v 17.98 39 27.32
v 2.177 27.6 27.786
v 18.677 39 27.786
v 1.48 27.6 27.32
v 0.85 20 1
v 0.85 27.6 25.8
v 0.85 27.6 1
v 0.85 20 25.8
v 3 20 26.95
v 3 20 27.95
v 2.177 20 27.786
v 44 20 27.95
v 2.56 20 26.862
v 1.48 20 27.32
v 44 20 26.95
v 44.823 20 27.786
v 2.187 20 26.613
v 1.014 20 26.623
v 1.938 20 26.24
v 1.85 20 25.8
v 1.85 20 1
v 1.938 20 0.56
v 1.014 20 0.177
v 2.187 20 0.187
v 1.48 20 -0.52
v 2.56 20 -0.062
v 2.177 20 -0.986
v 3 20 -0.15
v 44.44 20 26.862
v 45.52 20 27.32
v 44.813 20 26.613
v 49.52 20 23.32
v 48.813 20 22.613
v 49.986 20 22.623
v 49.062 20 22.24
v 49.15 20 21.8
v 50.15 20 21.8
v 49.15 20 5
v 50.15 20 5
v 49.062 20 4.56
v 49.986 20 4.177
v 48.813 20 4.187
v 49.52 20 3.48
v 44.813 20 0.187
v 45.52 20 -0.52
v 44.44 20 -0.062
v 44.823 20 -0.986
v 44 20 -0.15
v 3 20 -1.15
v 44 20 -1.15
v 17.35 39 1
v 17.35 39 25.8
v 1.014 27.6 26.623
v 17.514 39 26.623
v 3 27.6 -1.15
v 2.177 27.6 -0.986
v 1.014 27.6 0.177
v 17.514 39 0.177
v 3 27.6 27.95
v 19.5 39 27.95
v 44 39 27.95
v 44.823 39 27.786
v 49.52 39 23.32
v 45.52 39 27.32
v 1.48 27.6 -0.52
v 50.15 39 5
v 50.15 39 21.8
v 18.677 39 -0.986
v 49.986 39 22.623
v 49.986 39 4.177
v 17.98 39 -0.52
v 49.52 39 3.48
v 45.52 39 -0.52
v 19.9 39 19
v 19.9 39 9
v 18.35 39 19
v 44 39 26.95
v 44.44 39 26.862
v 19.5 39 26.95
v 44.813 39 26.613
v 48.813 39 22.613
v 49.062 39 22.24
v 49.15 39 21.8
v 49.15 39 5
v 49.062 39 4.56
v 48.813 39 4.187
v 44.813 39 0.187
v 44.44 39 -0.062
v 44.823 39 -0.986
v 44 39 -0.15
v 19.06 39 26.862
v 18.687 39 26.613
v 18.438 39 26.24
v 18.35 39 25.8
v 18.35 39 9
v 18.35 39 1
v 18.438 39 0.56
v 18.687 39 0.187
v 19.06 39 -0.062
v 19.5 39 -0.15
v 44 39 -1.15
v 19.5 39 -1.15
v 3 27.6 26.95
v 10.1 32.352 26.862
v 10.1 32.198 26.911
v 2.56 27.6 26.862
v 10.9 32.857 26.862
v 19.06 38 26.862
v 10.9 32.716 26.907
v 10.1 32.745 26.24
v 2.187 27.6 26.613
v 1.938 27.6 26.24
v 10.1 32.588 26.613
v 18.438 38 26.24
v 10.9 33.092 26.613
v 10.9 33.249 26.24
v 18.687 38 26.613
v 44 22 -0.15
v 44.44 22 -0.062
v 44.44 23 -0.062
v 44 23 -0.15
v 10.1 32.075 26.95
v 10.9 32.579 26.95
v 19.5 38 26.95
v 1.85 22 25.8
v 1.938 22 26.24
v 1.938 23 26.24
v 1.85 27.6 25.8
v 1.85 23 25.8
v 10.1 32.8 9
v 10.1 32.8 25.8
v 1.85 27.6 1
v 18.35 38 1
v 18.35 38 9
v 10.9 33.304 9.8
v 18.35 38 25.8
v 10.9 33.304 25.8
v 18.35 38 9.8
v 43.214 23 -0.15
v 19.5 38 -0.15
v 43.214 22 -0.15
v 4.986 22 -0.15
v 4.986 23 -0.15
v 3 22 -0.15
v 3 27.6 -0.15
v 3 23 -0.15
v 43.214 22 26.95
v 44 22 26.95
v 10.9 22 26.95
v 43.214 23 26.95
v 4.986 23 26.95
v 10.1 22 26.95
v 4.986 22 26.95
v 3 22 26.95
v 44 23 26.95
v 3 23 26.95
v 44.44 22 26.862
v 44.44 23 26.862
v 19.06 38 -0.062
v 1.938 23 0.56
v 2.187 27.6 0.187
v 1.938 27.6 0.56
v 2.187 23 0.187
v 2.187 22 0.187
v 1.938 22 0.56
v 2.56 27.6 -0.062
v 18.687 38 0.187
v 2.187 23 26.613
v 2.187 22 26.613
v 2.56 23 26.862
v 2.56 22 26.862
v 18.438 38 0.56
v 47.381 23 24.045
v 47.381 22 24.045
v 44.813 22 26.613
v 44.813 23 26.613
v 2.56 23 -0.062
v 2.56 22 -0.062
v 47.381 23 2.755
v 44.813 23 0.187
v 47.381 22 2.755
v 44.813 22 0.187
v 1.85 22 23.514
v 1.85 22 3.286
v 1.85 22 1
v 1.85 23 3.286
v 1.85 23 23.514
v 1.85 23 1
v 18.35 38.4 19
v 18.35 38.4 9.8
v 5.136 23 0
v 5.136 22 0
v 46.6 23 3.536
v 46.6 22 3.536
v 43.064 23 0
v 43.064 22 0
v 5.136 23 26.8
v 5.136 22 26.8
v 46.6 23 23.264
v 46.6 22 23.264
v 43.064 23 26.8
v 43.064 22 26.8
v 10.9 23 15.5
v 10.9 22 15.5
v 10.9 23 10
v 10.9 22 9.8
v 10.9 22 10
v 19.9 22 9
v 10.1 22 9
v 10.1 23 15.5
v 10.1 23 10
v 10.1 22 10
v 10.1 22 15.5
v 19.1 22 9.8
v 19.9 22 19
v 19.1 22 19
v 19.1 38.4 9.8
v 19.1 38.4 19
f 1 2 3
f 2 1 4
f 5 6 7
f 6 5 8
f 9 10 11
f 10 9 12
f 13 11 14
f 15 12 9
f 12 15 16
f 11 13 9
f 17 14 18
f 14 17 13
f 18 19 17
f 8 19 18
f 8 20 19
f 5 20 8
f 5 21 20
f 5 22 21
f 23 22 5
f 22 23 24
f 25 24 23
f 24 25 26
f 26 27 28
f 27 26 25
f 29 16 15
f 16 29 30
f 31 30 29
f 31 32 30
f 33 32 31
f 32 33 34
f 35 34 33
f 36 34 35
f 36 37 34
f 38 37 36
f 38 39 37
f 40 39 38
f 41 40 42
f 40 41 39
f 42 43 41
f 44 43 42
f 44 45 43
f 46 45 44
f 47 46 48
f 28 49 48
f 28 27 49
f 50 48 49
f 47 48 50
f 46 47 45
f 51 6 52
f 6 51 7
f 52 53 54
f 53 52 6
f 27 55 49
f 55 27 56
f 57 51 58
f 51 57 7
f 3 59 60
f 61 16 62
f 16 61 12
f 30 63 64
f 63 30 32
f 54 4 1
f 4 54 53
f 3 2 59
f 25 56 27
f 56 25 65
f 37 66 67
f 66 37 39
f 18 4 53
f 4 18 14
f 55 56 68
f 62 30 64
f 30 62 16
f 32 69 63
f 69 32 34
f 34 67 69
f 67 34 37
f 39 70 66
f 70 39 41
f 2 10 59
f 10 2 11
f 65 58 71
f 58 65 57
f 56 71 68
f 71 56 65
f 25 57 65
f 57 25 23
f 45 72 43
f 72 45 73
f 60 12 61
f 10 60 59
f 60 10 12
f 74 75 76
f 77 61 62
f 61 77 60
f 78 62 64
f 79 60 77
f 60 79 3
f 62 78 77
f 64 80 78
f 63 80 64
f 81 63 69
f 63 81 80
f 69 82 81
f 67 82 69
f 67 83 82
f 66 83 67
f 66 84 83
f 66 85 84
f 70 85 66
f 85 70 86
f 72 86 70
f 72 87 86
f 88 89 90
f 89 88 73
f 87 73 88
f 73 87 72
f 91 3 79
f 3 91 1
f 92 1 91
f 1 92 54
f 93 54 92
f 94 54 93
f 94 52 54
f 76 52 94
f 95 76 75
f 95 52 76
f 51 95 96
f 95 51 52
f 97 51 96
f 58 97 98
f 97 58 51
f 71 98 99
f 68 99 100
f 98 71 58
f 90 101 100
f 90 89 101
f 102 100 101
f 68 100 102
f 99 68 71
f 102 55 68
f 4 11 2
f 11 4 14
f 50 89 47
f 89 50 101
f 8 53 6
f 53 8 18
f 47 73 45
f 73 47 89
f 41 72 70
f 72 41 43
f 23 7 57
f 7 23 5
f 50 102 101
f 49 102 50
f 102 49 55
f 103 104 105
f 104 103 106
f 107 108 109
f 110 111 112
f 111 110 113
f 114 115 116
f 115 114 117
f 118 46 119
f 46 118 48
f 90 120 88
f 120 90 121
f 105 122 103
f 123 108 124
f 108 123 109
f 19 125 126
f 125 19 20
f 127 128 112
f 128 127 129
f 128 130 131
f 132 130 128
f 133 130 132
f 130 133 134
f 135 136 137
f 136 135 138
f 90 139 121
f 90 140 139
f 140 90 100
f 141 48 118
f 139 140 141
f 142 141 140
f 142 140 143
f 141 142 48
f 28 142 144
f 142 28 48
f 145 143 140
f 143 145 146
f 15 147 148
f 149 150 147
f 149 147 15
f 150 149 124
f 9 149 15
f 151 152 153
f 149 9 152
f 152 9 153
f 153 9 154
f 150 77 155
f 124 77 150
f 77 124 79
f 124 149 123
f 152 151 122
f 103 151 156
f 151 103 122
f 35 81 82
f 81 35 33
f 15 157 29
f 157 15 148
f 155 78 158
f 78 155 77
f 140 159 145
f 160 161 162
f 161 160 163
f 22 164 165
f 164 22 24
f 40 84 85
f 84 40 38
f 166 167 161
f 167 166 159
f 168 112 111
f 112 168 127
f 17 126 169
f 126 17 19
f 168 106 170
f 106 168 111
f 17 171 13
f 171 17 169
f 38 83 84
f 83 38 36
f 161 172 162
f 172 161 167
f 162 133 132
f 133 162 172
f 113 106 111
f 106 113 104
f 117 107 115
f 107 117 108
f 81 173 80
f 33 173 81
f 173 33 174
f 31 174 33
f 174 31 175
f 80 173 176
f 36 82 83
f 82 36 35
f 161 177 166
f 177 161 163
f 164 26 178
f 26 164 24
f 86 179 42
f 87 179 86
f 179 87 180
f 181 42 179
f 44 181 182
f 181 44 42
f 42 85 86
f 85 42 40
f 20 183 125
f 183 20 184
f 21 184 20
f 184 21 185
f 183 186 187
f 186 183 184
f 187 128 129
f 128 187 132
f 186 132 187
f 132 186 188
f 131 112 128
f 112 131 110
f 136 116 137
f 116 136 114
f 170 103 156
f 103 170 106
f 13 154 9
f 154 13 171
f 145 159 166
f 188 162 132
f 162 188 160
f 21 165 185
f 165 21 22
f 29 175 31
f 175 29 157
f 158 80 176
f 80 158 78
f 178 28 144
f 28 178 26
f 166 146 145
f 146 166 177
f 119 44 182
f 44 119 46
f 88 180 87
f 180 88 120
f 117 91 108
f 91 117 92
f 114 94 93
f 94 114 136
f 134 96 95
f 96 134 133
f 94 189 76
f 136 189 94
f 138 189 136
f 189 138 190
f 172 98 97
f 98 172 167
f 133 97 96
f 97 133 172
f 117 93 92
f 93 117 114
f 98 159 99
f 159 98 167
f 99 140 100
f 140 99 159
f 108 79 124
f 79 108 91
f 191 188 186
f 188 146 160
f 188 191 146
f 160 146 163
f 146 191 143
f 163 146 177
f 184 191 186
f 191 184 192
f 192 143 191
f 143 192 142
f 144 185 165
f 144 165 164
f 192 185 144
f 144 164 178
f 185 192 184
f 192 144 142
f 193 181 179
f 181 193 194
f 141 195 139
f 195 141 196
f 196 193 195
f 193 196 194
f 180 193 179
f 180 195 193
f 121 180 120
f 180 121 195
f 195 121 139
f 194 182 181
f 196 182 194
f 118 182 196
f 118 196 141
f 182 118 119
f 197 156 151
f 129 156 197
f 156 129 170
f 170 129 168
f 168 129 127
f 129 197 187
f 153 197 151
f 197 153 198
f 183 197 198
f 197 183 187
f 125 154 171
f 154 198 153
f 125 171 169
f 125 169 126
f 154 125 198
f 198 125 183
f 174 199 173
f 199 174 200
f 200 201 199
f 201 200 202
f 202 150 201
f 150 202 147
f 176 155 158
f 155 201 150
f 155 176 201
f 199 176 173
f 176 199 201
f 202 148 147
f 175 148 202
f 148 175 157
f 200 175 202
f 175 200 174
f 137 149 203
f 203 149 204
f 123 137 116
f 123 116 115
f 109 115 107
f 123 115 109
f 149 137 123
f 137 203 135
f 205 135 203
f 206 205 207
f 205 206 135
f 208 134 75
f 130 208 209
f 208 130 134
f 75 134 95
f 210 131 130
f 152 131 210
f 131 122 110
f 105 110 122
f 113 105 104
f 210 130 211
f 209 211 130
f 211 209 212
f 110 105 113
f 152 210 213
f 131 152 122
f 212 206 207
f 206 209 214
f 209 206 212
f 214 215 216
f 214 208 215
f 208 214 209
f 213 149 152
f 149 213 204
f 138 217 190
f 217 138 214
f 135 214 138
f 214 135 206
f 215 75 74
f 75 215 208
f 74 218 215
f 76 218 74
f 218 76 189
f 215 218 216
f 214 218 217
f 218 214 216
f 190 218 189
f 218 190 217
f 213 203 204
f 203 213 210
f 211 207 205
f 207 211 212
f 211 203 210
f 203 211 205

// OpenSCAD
// file: xt.scad
e=.001;
$fn=16;

xt60_w=15.7;
xt60_h=8;
xt60f_d = 15.7;
xt60f_base_d = 8;
xt60_combined_d=24.1;
xt60_pitch=7;
xt60_chamfer=2.5;
xt60f_pin_d=5.7;
xt60m_pin_d=4.7;
xt60_pin_w=4.5;
xt60_hole_w=4.5;
xt60_corner=.5;

module xt_pins(width, height, pitch)
{
	for (p=[-pitch/2, pitch/2])
	translate([p,0,0])
	cylinder(h=height, r=width/2);
}

module xt_base(w, h, d, chamfer, corner, margin=0, e=0)
{
	w = w-2*corner;
	h = h-2*corner;
	r = corner+margin;
	translate([0,0,-e])
    linear_extrude(d+2*e)
	hull()
    for (p=[ [w/2,-h/2],
	         [-w/2+chamfer, -h/2],
	         [-w/2, -h/2+chamfer],
	         [-w/2, h/2-chamfer],
	         [-w/2+chamfer, h/2],
	         [w/2, h/2]
	])
	translate(p)
	circle(r);
}

module xt60_combined_shell_cutout(margin=0,f_margin=-1,m_margin=-1, e=0)
{
	b=1; 
	xt_base(xt60_w, xt60_h, xt60_combined_d, xt60_chamfer, xt60_corner, margin, e);
	if (f_margin > margin)
	hull()
	{
		xt_base(xt60_w, xt60_h, xt60f_base_d, xt60_chamfer, xt60_corner, f_margin, e);
		translate([0,0,xt60f_base_d])
		xt_base(xt60_w, xt60_h, f_margin-margin, xt60_chamfer, xt60_corner, margin, e);
	}
	if (m_margin > margin)
	hull()
	{
		translate([0,0,xt60f_base_d-(m_margin-margin)])
		xt_base(xt60_w, xt60_h, m_margin-margin, xt60_chamfer, xt60_corner, margin, e);
		translate([0,0,xt60f_base_d])
		xt_base(xt60_w, xt60_h, xt60_combined_d-xt60f_base_d, xt60_chamfer, xt60_corner, m_margin, e);
	}
}


module xt60_combined_cutout(margin=0,f_margin=-1,m_margin=-1, e=0)
{
	b=1; 
	xt60_combined_shell_cutout(margin,f_margin,m_margin, e);

	translate([0, 0, -xt60f_pin_d-margin])
	xt_pins(xt60_pin_w+margin*2, xt60f_pin_d+b+margin, xt60_pitch);

	translate([0, 0, xt60_combined_d-b])
	xt_pins(xt60_pin_w+margin*2, xt60m_pin_d+b+margin, xt60_pitch);
}

module xt60f_cutout(margin=0,f_margin=-1,m_margin=-1,e=0)
{
	translate([0,0,-xt60f_d])
	xt60_combined_cutout(margin,f_margin,m_margin,e);
}

module xt60f_shell_cutout(margin=0,f_margin=-1,m_margin=-1,e=0)
{
	translate([0,0,-xt60f_d])
	xt60_combined_shell_cutout(margin,f_margin,m_margin,e);
}

module xt60f()
{
	b=1;
	translate([0,0,-xt60f_d])
	{
		xt_base(xt60_w, xt60_h, xt60f_base_d, xt60_chamfer, xt60_corner, 0, e);

		translate([0,0,b])
		difference()
		{
			xt_base(xt60_w-2*xt60_corner, xt60_h-2*xt60_corner, xt60f_d-b, xt60_chamfer, xt60_corner, 0, e);
			xt_pins(xt60_hole_w, xt60f_d, xt60_pitch);

		}

		difference()
		{
			translate([0, 0, -xt60f_pin_d])
			xt_pins(xt60_pin_w, xt60f_pin_d+b, xt60_pitch);

			translate([0, 0, -xt60f_pin_d-b])
			xt_pins(xt60_pin_w*.8, xt60f_pin_d+b, xt60_pitch);
		}
	}
}

xt60f();
%xt60f_cutout(margin=.4,m_margin=1,e=e);
// file: powerplug.scad
e=0.001;

border_w=51;
border_h=31.2;
border_d=3.5;

w=47;
h=26.8;
d=22;
chamf=4;


flap_a_w=10;
flap_a_x=4;

flap_b_w=7;
flap_b_x=33;

flap_h=1;
flap_latch=.8;

corner=1;

module plug(margin=0, extra_depth=0)
{
	$fn=16;

	d = d+extra_depth;
	border_w = border_w-2*corner;
	border_h = border_h-2*corner;
	w = w-2*corner;
	h = h-2*corner;
	r = corner+margin;

	color([.3,.3,.3])
	translate([corner,0,corner])
	rotate([90,0,0])
	{
		translate([0,(h-border_h)/2,0])
		linear_extrude(border_d+margin)
		hull()
		for(p=[ [0, 0],
		        [0, border_h],
		        [border_w, border_h],
		        [border_w, 0]
		])
		translate(p)
		circle(r);

		translate([(border_w-w)/2,0,-d])
		linear_extrude(d+e)
		hull()
		for (p=[ [0, 0],
		         [0, h],
		         [w-chamf, h],
		         [w, h-chamf],
		         [w, chamf],
		         [w- chamf, 0],
		])
		translate(p)
		circle(r);
	}
}

module plug_latch(margin=0)
{
	rotate([90,0,0])
	rotate([0,90,0])
	linear_extrude(9)
	{
		polygon([ [0, -1], [0, 1+margin], [9, margin]]);
	}
}

module plug_latches(margin=0)
{
	for (x=[9.5,32])
	for (y_flip=[-1, 1])
	translate([(border_w-w)/2+x,1.8, h/2])
	scale([1,1,y_flip])
	translate([0,0,h/2])
	plug_latch(margin);
}

plug();

plug_latches()

%plug(margin=.3);
// file: mw_lrs.scad
e=.001;
$fn=16;

mw_lrs_w=115;
mw_lrs_h=30;
mw_lrs_d=215;


mw_lrs_holes_pitch_d  = 150;
mw_lrs_holes_pitch_w  = 50;
mw_lrs_holes_height_h = 12.5;

mw_lrs_gap_h = 23;
mw_lrs_gap_d = 18.5;

mw_lrs_case_thickness = 1.6;

m4_thread = 4;

mw_lrs_screw_terminal_x=8.5;
mw_lrs_screw_terminal_w=88;
mw_lrs_screw_terminal_d=15;
mw_lrs_screw_terminal_h=15;
mw_lrs_screw_terminal_pitch = 9.5;
mw_lrs_screw_terminal_gap_w = 8;
mw_lrs_screw_terminal_gap_d = 14;
mw_lrs_screw_terminal_gap_z = 7;
mw_lrs_screw_terminal_gap_h = 6;

module mw_lrs_side_holes()
{
	translate( [0, 0, mw_lrs_holes_height_h] )
	for( r = [ 0, 180 ] )
	rotate( [0, r, 0] )
	for( y = [ (mw_lrs_d-mw_lrs_holes_pitch_d)/2, (mw_lrs_d+mw_lrs_holes_pitch_d)/2 ] )
	translate( [-mw_lrs_w/2, y, 0] )
	rotate( [0, 90, 0] )
	children();
}

module mw_lrs_bottom_holes()
{
	for( x = [ -mw_lrs_holes_pitch_w/2, mw_lrs_holes_pitch_w/2 ] )
	for( y = [ (mw_lrs_d-mw_lrs_holes_pitch_d)/2, (mw_lrs_d+mw_lrs_holes_pitch_d)/2 ] )
	translate( [x, y, 0] )
	children();
}

module mw_lrs_holes()
{
	mw_lrs_side_holes() children();
	mw_lrs_bottom_holes() children();
}

module mw_lrs_screw_terminal()
{
	colors = [
		"red", "red", "red",
		"black", "black", "black",
		"green", "blue", "brown",
	];
	b=1;
	translate([mw_lrs_screw_terminal_x, mw_lrs_case_thickness, mw_lrs_h-mw_lrs_gap_h-e])
	{
		difference()
		{
			translate([-mw_lrs_screw_terminal_w/2, 0, 0])
			cube([mw_lrs_screw_terminal_w, mw_lrs_screw_terminal_d, mw_lrs_screw_terminal_h+e]);
			for (i=[0:8])
			translate([(i-4)*9.5-mw_lrs_screw_terminal_gap_w/2, -b, mw_lrs_screw_terminal_gap_z])
			cube([mw_lrs_screw_terminal_gap_w, mw_lrs_screw_terminal_gap_d+b, mw_lrs_screw_terminal_gap_h]);
		}

		for (i=[0:8])
		translate([(i-4)*9.5-mw_lrs_screw_terminal_gap_w/2, -0, mw_lrs_screw_terminal_h])
		color(colors[i])
		cube([mw_lrs_screw_terminal_gap_w,mw_lrs_screw_terminal_gap_d,.1]);

	}
}

module mw_lrs_vents()
{
	b=1;
	hole=4;
	for (y = [36, 44, 52])
	for (i = [-1, 1])
	hull()
	{
		translate([i*(19/2+hole/2), y, mw_lrs_h-mw_lrs_case_thickness-b])
			cylinder(mw_lrs_case_thickness+2*b, r=hole/2);

		translate([i*(19/2+hole/2+33), y, mw_lrs_h-mw_lrs_case_thickness-b])
			cylinder(mw_lrs_case_thickness+2*b, r=hole/2);
	}

	translate([-mw_lrs_w/2+36.7, mw_lrs_d-47.45,mw_lrs_h-mw_lrs_case_thickness-b])
		cylinder(mw_lrs_case_thickness+2*b, r=50/2);
}

module mw_lrs_vents_keepout(h, margin=0)
{
	b=1;
	hole=4;
	hull()
	for (y = [36, 44, 52])
	for (i = [-1, 1])
	{
		translate([i*(19/2+hole/2), y, mw_lrs_h-b])
			cylinder(h+b, r=hole/2+margin);

		translate([i*(19/2+hole/2+33), y, mw_lrs_h-b])
			cylinder(h+b, r=hole/2+margin);
	}

	translate([-mw_lrs_w/2+36.7, mw_lrs_d-47.45,mw_lrs_h-b])
		cylinder(h+b, r=50/2);
}

module mw_lrs()
{
	b=1; 

	union()
	{
		color([.75,.75,.75])
		difference()
		{

			translate([-mw_lrs_w/2,0,0])
			cube([mw_lrs_w, mw_lrs_d, mw_lrs_h]);

			union()
			{
				translate([-mw_lrs_w/2+mw_lrs_case_thickness, -b, mw_lrs_h-mw_lrs_gap_h] )
				cube( [ mw_lrs_w-2*mw_lrs_case_thickness, b+mw_lrs_gap_d, mw_lrs_gap_h+b] );

				translate([-mw_lrs_w/2+mw_lrs_case_thickness, mw_lrs_gap_d-e, mw_lrs_h-mw_lrs_gap_h] )
				cube( [ mw_lrs_w-2*mw_lrs_case_thickness, mw_lrs_d-mw_lrs_gap_d+e-mw_lrs_case_thickness, mw_lrs_gap_h-mw_lrs_case_thickness] );

				mw_lrs_vents();

				mw_lrs_holes()
				{
					translate([0,0,-e])
					cylinder(h=5+e, r=m4_thread/2);
				}
			}
		}
		color([.1, .3, .1])
		translate([-mw_lrs_w/2+mw_lrs_case_thickness, 0, mw_lrs_h-mw_lrs_gap_h-e])
		cube([mw_lrs_w-2*mw_lrs_case_thickness, mw_lrs_d-mw_lrs_case_thickness, e+.1]);
		mw_lrs_screw_terminal();
	}
}

module mw_lrs_keepout(margin=0, e=0)
{
	b=1; 

	w=mw_lrs_w+margin*2;
	d=mw_lrs_d+margin*2;
	h=mw_lrs_h+margin*2;

	translate([-w/2,-margin,-margin])
	cube([w, d, h]);
}

mw_lrs();
%mw_lrs_keepout(margin=.4);

module m4_hole(h)
{
	translate([0,0,-h])
	cylinder(h=h+e, r=m4_thread/2);
}

%mw_lrs_holes()
m4_hole(10);
// file: grid.scad
module bars(width, height, n, pitch, bar_width)
{
	for (i=[0:n-1])
		translate([0, (i-(n-1)/2)*pitch-bar_width/2, 0])
			cube([width, bar_width, height]);
}

module grid(width, depth, height, n_rows, n_cols, pitch=10, x_pitch=-1, y_pitch=-1, bar_width=1, x_bar_width=-1, y_bar_width=-1)
{
	x_pitch = x_pitch > 0 ? x_pitch : pitch;
	y_pitch = y_pitch > 0 ? y_pitch : pitch;
	x_bar_width = x_bar_width > 0 ? x_bar_width : bar_width;
	y_bar_width = y_bar_width > 0 ? y_bar_width : bar_width;

	translate( [0, depth/2, 0] )
		bars( width, height, n_rows, y_pitch, y_bar_width );
	translate( [width/2, 0, 0] )
		rotate([0,0,90])
			bars( depth, height, n_cols, x_pitch, x_bar_width) ;
}

grid(100, 50, 1, 4, 8);
// file: utils.scad
module xz_toward_y()
{
	scale([1, 1, -1])
	rotate([-90,0,0])
	children();
}

module anchor(dim, anchor=[0,0,0])
{
	translate([-(1+anchor.x)*dim.x/2, -(1+anchor.y)*dim.y/2, -(1+anchor.z)*dim.z/2])
	children();
}

module block(dim, anchor=[0,0,0])
{
	anchor(dim, anchor)
	cube(dim);
}

module rounded_block_z(dim, anchor=[0,0,0], r=0)
{
	anchor(dim, anchor)
	linear_extrude(dim.z)
	hull()
	for (p=[ [r,r], [dim.x-r, r], [dim.x-r, dim.y-r], [r, dim.y-r] ] )
	translate(p)
	circle(r);
}

module rounded_block_y(dim, anchor=[0,0,0], r=0)
{
	anchor(dim, anchor)
	xz_toward_y()
	linear_extrude(dim.y)
	hull()
	for (p=[ [r,r], [dim.x-r, r], [dim.x-r, dim.z-r], [r, dim.z-r] ] )
	translate(p)
	circle(r);
}

module chamfer_block_y(dim, anchor=[0,0,0], r=0)
{
	anchor(dim, anchor)
	hull()
	{
		translate([r,0,0])
		cube([dim.x-r*2, dim.y, dim.z]);

		translate([0,0,r])
		cube([dim.x, dim.y, dim.z-r*2]);
	}
}

module chamfer_block_z(dim, anchor=[0,0,0], r=0)
{
	anchor(dim, anchor)
	hull()
	{
		translate([r,0,0])
		cube([dim.x-r*2, dim.y, dim.z]);

		translate([0,r,0])
		cube([dim.x, dim.y-r*2, dim.z]);
	}
}

module chamfer_block(dim, anchor=[0,0,0], r=0)
{
	anchor(dim, anchor)
	hull()
	{
		translate([r,r,0])
		cube([dim.x-r*2, dim.y-r*2, dim.z]);

		translate([r,0,r])
		cube([dim.x-r*2, dim.y, dim.z-r*2]);

		translate([0,r,r])
		cube([dim.x, dim.y-r*2, dim.z-r*2]);
	}
}

module at_grid(c,r,pitch,anchor=[0,0,0])
{
	dim=[(c-1)*pitch,(r-1)*pitch,1];
	a=[anchor[0],anchor[1],-1];
	anchor(dim,a)
	for(x=[0:c-1])
	for(y=[0:r-1])
	translate([x*pitch,y*pitch,0])
	children();
}

module ngon_outer(n,h,r)
{
	cylinder(h,r=r, $fn=n);
}

module ngon_inner(n,h,r)
{
	a=360/n/2;
	r_cyl = r/cos(a);
	rotate([0,0,a])
	cylinder(h,r=r_cyl, $fn=n);
}


module ngon_cone_outer(n,h,r1,r2)
{
	cylinder(h,r1=r1,r2=r2, $fn=n);
}

module ngon_cone_inner(n,h,r1,r2)
{
	a=360/n/2;
	r1_cyl = r1/cos(a);
	r2_cyl = r2/cos(a);
	rotate([0,0,a])
	cylinder(h,r1=r1_cyl,r2=r2_cyl, $fn=n);
}

module preview()
{
	if ($preview)
	children();
}
// main file
use <utils.scad>
use <grid.scad>

use <mw_lrs.scad>
use <powerplug.scad>
use <xt.scad>

$fn=16;
e=.001;


margin=.15;
shield_thickness=1.;
shield_bottom=.6;

border_w=51;
border_h=31.2;
border_d=3.5;

w=47;
h=26.8;
d=22;
chamf=4;


flap_a_w=10;
flap_a_x=4;

flap_b_w=7;
flap_b_x=33;

flap_h=1;
flap_latch=.8;

corner=1;

module plug_keepout(margin=0, depth=39, e=0)
{
	$fn=16;

	d = .1+e;
	border_w = border_w-2*corner;
	border_h = border_h-2*corner;
	w = w-2*corner;
	h = h-2*corner;
	r = corner+margin;
	off = 16.5;

	color([.3,.3,.3])
	translate([corner,depth-.1,corner])
	rotate([90,0,0])
	{
		translate([(border_w-w)/2,0,-d])
		linear_extrude(d+e)
		hull()
		for (p=[ [off, 0],
		         [off, h],
		         [w-chamf, h],
		         [w, h-chamf],
		         [w, chamf],
		         [w- chamf, 0],
		])
		translate(p)
		circle(r);
	}
}

module plug_hull(margin, d, e=0)
{
	hull()
	{
		difference()
		{
		plug(margin=margin, extra_depth=5+shield_bottom);
		translate([-10,-10,-10])
		cube([100, 30, 100]);
		}
		plug_keepout(margin=margin, depth=d, e=0);
	}
	plug_keepout(margin=margin, depth=d, e=e);
	
}

inner_w=.8;

module power_shield()
{
color("red")
	union()
	{
	difference()
	{
		union()
		{
			plug_hull(margin=margin+shield_thickness, d=39);
		}
		union()
		{
		plug_hull(margin=margin, d=38, e=2);
		}
	}

	intersection()
	{
		plug_hull(margin=margin+shield_thickness/2, d=38.5, e=2);
		difference()
		{
			union()
			{
				translate([(border_w-w)/2+8.5-inner_w/2, 22, h/2-4-inner_w/2])
				cube([inner_w, 20, 20]);

				translate([(border_w-w)/2+8.5, 22, h/2-4-inner_w/2])
				cube([9., 17, inner_w]);

				translate([(border_w-w)/2+17.5-inner_w/2, 22, h/2-4-inner_w/2])
				cube([inner_w, 17, 10]);

				translate([(border_w-w)/2+15-inner_w/2, 38.4, h/2-4-inner_w/2])
				cube([2.5, shield_bottom, 10]);

				for (y=[0,h])
				for (x=[0,w-2])
				translate([(border_w-w)/2+x-5/sqrt(2)-inner_w/2, 22, y])
				rotate([0,45,0])
				cube([5,1,5]);

			}
			translate([(border_w-w)/2+6.5-inner_w/2, 21, h/2-6/2-inner_w/2])
			cube([5, 2, 5.5]);
		}
	}
}
}

power_shield();

//preview()
//plug();
